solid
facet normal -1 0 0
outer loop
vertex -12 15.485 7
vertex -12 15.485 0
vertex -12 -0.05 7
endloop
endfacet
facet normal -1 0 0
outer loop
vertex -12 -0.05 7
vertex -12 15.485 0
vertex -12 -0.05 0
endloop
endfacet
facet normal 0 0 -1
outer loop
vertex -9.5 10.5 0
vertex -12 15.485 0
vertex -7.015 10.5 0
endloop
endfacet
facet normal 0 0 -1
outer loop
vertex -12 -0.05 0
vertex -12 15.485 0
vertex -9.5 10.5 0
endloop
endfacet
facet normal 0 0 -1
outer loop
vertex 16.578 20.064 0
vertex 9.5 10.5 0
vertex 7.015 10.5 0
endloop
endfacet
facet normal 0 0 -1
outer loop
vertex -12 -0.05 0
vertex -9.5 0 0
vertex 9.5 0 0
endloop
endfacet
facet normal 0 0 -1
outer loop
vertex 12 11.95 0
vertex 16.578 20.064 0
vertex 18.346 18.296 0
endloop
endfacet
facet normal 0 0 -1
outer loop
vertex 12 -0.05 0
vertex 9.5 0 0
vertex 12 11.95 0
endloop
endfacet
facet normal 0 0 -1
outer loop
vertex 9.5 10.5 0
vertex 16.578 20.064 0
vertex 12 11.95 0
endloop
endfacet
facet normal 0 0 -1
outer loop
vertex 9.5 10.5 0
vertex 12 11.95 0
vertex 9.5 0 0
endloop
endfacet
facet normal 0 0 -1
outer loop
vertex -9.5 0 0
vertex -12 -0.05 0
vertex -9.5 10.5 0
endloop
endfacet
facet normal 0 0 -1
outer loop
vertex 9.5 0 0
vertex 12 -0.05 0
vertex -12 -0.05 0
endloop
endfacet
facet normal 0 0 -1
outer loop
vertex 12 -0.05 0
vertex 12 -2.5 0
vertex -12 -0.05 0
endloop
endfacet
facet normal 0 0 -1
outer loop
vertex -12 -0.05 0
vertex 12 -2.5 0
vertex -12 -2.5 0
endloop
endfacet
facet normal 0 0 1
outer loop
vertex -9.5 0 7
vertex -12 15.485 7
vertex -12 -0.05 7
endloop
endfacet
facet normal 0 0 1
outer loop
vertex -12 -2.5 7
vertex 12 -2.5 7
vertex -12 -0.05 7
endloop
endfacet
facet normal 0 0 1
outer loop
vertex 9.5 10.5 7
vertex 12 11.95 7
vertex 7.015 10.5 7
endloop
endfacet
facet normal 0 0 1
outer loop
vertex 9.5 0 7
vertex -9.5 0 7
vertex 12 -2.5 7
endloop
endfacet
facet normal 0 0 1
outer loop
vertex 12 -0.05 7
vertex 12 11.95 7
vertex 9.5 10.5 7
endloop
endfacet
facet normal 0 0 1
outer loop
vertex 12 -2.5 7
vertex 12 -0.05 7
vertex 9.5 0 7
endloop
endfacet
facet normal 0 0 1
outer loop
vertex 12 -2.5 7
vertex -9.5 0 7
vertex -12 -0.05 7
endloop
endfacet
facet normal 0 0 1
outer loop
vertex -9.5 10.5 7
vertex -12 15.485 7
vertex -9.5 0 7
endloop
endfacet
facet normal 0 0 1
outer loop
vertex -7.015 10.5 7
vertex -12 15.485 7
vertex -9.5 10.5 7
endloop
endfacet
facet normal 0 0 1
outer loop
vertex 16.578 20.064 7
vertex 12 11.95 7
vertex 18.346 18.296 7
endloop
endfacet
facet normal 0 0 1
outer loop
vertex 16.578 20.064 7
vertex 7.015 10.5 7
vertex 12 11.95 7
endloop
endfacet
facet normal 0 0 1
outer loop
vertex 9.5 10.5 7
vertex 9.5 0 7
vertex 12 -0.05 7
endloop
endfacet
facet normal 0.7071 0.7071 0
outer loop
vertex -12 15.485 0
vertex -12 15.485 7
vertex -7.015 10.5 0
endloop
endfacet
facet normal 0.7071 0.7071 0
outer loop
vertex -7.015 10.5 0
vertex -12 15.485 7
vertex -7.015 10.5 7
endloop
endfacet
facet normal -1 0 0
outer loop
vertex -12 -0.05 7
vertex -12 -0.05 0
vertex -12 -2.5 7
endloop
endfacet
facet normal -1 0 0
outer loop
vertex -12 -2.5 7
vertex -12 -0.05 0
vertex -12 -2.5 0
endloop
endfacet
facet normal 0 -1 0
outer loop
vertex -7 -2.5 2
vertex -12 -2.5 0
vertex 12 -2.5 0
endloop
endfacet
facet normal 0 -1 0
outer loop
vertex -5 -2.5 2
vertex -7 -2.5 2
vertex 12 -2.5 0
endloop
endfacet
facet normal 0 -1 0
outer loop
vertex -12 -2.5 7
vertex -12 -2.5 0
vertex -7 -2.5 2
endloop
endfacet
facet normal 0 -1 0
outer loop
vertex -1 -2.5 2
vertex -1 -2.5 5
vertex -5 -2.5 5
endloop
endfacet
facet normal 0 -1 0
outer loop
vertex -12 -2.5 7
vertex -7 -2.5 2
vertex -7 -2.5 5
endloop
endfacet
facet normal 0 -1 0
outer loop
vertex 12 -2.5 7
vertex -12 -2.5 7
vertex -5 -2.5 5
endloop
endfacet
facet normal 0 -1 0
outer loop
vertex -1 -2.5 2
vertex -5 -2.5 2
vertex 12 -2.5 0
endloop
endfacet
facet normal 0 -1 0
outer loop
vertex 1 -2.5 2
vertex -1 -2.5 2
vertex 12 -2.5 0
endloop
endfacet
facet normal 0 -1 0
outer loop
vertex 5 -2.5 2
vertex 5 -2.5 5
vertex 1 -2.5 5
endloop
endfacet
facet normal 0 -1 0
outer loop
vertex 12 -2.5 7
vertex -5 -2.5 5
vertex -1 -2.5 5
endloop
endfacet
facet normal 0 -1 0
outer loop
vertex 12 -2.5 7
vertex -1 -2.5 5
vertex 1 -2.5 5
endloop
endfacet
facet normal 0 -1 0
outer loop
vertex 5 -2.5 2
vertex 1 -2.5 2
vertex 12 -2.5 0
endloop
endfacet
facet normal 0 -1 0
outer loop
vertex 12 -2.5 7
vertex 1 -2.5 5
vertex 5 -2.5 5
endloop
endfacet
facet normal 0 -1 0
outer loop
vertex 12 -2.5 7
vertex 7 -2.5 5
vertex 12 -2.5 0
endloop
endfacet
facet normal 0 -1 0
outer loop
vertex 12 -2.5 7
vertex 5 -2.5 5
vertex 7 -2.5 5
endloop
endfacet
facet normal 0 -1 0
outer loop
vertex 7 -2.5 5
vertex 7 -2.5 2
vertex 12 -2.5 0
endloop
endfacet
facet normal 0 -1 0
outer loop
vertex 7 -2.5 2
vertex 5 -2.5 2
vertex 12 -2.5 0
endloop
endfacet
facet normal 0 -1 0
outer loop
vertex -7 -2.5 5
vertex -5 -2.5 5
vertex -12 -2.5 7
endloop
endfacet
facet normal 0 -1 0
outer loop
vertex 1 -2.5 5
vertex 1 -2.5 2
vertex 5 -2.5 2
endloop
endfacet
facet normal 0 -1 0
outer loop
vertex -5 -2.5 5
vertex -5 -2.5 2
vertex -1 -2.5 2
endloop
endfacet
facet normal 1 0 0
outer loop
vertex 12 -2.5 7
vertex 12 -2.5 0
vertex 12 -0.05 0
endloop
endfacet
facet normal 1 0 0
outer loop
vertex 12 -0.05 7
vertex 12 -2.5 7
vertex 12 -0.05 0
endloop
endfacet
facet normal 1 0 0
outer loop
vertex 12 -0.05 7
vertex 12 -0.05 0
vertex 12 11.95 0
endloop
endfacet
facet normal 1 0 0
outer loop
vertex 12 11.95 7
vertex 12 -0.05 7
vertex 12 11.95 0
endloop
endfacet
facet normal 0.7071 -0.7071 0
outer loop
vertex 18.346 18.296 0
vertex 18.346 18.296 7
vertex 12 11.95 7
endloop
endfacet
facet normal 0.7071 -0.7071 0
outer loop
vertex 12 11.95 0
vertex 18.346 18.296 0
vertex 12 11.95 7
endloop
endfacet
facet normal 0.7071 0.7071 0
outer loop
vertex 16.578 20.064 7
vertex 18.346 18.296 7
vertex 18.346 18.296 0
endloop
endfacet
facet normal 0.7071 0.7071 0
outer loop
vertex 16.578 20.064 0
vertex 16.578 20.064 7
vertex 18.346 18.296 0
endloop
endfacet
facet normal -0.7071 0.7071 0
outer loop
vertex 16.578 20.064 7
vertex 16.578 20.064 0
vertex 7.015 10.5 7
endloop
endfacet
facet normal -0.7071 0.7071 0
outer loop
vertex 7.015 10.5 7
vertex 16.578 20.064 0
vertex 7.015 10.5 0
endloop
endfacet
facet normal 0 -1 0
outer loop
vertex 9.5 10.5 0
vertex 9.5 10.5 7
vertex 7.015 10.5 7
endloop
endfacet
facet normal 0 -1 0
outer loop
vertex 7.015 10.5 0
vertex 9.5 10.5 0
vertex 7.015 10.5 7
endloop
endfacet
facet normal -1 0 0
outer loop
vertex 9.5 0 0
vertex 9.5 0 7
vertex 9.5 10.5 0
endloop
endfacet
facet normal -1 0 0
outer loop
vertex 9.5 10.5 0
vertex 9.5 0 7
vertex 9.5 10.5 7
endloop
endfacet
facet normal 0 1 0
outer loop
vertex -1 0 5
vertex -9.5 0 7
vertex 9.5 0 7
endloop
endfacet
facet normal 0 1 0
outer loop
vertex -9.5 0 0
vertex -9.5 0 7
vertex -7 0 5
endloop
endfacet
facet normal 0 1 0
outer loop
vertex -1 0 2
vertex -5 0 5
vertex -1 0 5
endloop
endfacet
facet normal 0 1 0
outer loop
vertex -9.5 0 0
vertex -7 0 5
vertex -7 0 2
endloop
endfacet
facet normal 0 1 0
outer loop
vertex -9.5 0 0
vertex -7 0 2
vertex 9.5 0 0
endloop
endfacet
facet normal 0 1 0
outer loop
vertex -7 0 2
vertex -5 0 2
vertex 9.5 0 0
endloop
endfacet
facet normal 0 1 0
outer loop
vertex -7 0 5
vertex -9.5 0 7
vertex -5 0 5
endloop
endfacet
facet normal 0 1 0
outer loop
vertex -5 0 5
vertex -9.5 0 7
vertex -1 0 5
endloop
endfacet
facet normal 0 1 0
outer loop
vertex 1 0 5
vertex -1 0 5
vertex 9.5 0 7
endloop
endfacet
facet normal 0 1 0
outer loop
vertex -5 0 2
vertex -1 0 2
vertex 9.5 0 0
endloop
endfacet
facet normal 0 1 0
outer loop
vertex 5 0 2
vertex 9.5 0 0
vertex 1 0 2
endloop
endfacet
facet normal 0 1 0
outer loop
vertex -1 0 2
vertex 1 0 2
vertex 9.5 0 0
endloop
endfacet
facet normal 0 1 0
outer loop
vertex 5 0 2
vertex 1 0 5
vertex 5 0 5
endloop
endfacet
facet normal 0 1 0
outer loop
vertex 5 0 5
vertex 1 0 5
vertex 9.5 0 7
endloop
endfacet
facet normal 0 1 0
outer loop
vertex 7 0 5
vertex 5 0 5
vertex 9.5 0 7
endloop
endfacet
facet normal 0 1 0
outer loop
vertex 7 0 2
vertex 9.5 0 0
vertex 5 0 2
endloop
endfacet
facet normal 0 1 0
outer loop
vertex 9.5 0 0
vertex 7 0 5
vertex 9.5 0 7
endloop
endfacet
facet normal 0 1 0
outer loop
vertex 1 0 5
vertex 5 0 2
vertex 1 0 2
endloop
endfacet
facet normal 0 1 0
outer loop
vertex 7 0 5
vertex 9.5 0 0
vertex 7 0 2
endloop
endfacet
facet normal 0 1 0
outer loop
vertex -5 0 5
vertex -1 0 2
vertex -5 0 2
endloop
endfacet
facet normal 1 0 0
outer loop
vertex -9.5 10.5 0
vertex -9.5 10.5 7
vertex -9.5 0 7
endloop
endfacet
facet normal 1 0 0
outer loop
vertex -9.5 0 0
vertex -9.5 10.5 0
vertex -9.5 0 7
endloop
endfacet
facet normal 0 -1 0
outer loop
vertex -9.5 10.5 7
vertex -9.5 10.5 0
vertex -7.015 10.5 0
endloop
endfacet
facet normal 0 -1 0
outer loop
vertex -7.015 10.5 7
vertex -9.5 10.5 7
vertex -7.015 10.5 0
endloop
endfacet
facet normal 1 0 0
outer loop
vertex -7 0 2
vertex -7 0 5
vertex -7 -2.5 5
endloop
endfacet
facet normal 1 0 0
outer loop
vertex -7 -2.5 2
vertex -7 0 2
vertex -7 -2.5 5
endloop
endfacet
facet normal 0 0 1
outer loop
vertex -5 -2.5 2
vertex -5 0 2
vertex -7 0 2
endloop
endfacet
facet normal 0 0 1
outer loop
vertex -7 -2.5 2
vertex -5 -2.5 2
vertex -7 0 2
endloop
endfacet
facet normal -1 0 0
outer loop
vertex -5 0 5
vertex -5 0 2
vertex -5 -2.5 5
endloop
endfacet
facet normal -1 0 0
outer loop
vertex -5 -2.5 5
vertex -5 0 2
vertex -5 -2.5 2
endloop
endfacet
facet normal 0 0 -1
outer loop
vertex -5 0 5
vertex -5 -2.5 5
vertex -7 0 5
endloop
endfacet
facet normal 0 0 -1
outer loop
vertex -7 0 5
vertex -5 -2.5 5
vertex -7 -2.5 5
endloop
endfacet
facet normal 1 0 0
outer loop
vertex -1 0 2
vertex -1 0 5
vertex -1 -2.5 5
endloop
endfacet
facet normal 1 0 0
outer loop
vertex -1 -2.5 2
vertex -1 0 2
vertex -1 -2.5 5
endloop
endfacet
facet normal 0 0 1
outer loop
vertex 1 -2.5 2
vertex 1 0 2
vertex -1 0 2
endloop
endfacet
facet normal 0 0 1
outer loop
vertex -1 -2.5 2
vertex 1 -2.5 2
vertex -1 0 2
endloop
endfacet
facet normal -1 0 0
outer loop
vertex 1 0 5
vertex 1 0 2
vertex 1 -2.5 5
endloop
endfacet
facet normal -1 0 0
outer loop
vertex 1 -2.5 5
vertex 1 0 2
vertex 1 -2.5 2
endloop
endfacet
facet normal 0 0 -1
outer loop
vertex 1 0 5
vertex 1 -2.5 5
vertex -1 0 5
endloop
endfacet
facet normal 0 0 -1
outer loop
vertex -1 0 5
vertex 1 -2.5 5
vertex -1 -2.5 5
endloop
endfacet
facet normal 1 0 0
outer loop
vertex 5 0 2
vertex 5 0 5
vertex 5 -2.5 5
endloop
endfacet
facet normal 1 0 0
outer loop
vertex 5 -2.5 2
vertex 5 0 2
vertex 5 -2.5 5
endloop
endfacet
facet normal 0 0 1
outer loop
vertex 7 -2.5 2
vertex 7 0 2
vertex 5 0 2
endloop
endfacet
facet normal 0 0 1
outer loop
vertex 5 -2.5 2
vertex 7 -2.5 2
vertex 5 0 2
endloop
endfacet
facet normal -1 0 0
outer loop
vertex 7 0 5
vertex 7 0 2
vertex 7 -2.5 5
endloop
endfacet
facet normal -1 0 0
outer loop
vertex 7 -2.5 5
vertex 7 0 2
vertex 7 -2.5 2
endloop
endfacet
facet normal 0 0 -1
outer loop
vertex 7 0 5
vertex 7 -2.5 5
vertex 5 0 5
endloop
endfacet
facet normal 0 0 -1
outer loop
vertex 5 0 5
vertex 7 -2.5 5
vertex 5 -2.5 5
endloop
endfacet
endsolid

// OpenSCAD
use <../utilities.scad>

span=19;
clip_to_cross=10.5;
t=2.5;
lip=2.5;
d=0.05;
h=7;

difference(){
	union(){
		reflect([1,0,0]){
			translate([-d,-t,0]) cube([span/2+t+d,t,h]);
			translate([span/2,-d,0]) cube([t,clip_to_cross+2*d,h]);
			translate([span/2+t,clip_to_cross,0]) mirror([1,0,0]) intersection(){
				rotate([0,0,45]) cube([(lip+t)*1.41,(lip+t)*1.41,2*h],center=true);
				cube([999,999,999]);
			}
		}
		translate([span/2+t,clip_to_cross,0]) rotate([0,0,-45]) 
			mirror([1,0,0]) translate([lip*1.41/2+t*(1.41/2-1),0,0]) cube([t,10,h]);
	}
	repeat([6,0,0],3,center=true) translate([0,0,h/2]) cube([2,999,3],center=true);
}
